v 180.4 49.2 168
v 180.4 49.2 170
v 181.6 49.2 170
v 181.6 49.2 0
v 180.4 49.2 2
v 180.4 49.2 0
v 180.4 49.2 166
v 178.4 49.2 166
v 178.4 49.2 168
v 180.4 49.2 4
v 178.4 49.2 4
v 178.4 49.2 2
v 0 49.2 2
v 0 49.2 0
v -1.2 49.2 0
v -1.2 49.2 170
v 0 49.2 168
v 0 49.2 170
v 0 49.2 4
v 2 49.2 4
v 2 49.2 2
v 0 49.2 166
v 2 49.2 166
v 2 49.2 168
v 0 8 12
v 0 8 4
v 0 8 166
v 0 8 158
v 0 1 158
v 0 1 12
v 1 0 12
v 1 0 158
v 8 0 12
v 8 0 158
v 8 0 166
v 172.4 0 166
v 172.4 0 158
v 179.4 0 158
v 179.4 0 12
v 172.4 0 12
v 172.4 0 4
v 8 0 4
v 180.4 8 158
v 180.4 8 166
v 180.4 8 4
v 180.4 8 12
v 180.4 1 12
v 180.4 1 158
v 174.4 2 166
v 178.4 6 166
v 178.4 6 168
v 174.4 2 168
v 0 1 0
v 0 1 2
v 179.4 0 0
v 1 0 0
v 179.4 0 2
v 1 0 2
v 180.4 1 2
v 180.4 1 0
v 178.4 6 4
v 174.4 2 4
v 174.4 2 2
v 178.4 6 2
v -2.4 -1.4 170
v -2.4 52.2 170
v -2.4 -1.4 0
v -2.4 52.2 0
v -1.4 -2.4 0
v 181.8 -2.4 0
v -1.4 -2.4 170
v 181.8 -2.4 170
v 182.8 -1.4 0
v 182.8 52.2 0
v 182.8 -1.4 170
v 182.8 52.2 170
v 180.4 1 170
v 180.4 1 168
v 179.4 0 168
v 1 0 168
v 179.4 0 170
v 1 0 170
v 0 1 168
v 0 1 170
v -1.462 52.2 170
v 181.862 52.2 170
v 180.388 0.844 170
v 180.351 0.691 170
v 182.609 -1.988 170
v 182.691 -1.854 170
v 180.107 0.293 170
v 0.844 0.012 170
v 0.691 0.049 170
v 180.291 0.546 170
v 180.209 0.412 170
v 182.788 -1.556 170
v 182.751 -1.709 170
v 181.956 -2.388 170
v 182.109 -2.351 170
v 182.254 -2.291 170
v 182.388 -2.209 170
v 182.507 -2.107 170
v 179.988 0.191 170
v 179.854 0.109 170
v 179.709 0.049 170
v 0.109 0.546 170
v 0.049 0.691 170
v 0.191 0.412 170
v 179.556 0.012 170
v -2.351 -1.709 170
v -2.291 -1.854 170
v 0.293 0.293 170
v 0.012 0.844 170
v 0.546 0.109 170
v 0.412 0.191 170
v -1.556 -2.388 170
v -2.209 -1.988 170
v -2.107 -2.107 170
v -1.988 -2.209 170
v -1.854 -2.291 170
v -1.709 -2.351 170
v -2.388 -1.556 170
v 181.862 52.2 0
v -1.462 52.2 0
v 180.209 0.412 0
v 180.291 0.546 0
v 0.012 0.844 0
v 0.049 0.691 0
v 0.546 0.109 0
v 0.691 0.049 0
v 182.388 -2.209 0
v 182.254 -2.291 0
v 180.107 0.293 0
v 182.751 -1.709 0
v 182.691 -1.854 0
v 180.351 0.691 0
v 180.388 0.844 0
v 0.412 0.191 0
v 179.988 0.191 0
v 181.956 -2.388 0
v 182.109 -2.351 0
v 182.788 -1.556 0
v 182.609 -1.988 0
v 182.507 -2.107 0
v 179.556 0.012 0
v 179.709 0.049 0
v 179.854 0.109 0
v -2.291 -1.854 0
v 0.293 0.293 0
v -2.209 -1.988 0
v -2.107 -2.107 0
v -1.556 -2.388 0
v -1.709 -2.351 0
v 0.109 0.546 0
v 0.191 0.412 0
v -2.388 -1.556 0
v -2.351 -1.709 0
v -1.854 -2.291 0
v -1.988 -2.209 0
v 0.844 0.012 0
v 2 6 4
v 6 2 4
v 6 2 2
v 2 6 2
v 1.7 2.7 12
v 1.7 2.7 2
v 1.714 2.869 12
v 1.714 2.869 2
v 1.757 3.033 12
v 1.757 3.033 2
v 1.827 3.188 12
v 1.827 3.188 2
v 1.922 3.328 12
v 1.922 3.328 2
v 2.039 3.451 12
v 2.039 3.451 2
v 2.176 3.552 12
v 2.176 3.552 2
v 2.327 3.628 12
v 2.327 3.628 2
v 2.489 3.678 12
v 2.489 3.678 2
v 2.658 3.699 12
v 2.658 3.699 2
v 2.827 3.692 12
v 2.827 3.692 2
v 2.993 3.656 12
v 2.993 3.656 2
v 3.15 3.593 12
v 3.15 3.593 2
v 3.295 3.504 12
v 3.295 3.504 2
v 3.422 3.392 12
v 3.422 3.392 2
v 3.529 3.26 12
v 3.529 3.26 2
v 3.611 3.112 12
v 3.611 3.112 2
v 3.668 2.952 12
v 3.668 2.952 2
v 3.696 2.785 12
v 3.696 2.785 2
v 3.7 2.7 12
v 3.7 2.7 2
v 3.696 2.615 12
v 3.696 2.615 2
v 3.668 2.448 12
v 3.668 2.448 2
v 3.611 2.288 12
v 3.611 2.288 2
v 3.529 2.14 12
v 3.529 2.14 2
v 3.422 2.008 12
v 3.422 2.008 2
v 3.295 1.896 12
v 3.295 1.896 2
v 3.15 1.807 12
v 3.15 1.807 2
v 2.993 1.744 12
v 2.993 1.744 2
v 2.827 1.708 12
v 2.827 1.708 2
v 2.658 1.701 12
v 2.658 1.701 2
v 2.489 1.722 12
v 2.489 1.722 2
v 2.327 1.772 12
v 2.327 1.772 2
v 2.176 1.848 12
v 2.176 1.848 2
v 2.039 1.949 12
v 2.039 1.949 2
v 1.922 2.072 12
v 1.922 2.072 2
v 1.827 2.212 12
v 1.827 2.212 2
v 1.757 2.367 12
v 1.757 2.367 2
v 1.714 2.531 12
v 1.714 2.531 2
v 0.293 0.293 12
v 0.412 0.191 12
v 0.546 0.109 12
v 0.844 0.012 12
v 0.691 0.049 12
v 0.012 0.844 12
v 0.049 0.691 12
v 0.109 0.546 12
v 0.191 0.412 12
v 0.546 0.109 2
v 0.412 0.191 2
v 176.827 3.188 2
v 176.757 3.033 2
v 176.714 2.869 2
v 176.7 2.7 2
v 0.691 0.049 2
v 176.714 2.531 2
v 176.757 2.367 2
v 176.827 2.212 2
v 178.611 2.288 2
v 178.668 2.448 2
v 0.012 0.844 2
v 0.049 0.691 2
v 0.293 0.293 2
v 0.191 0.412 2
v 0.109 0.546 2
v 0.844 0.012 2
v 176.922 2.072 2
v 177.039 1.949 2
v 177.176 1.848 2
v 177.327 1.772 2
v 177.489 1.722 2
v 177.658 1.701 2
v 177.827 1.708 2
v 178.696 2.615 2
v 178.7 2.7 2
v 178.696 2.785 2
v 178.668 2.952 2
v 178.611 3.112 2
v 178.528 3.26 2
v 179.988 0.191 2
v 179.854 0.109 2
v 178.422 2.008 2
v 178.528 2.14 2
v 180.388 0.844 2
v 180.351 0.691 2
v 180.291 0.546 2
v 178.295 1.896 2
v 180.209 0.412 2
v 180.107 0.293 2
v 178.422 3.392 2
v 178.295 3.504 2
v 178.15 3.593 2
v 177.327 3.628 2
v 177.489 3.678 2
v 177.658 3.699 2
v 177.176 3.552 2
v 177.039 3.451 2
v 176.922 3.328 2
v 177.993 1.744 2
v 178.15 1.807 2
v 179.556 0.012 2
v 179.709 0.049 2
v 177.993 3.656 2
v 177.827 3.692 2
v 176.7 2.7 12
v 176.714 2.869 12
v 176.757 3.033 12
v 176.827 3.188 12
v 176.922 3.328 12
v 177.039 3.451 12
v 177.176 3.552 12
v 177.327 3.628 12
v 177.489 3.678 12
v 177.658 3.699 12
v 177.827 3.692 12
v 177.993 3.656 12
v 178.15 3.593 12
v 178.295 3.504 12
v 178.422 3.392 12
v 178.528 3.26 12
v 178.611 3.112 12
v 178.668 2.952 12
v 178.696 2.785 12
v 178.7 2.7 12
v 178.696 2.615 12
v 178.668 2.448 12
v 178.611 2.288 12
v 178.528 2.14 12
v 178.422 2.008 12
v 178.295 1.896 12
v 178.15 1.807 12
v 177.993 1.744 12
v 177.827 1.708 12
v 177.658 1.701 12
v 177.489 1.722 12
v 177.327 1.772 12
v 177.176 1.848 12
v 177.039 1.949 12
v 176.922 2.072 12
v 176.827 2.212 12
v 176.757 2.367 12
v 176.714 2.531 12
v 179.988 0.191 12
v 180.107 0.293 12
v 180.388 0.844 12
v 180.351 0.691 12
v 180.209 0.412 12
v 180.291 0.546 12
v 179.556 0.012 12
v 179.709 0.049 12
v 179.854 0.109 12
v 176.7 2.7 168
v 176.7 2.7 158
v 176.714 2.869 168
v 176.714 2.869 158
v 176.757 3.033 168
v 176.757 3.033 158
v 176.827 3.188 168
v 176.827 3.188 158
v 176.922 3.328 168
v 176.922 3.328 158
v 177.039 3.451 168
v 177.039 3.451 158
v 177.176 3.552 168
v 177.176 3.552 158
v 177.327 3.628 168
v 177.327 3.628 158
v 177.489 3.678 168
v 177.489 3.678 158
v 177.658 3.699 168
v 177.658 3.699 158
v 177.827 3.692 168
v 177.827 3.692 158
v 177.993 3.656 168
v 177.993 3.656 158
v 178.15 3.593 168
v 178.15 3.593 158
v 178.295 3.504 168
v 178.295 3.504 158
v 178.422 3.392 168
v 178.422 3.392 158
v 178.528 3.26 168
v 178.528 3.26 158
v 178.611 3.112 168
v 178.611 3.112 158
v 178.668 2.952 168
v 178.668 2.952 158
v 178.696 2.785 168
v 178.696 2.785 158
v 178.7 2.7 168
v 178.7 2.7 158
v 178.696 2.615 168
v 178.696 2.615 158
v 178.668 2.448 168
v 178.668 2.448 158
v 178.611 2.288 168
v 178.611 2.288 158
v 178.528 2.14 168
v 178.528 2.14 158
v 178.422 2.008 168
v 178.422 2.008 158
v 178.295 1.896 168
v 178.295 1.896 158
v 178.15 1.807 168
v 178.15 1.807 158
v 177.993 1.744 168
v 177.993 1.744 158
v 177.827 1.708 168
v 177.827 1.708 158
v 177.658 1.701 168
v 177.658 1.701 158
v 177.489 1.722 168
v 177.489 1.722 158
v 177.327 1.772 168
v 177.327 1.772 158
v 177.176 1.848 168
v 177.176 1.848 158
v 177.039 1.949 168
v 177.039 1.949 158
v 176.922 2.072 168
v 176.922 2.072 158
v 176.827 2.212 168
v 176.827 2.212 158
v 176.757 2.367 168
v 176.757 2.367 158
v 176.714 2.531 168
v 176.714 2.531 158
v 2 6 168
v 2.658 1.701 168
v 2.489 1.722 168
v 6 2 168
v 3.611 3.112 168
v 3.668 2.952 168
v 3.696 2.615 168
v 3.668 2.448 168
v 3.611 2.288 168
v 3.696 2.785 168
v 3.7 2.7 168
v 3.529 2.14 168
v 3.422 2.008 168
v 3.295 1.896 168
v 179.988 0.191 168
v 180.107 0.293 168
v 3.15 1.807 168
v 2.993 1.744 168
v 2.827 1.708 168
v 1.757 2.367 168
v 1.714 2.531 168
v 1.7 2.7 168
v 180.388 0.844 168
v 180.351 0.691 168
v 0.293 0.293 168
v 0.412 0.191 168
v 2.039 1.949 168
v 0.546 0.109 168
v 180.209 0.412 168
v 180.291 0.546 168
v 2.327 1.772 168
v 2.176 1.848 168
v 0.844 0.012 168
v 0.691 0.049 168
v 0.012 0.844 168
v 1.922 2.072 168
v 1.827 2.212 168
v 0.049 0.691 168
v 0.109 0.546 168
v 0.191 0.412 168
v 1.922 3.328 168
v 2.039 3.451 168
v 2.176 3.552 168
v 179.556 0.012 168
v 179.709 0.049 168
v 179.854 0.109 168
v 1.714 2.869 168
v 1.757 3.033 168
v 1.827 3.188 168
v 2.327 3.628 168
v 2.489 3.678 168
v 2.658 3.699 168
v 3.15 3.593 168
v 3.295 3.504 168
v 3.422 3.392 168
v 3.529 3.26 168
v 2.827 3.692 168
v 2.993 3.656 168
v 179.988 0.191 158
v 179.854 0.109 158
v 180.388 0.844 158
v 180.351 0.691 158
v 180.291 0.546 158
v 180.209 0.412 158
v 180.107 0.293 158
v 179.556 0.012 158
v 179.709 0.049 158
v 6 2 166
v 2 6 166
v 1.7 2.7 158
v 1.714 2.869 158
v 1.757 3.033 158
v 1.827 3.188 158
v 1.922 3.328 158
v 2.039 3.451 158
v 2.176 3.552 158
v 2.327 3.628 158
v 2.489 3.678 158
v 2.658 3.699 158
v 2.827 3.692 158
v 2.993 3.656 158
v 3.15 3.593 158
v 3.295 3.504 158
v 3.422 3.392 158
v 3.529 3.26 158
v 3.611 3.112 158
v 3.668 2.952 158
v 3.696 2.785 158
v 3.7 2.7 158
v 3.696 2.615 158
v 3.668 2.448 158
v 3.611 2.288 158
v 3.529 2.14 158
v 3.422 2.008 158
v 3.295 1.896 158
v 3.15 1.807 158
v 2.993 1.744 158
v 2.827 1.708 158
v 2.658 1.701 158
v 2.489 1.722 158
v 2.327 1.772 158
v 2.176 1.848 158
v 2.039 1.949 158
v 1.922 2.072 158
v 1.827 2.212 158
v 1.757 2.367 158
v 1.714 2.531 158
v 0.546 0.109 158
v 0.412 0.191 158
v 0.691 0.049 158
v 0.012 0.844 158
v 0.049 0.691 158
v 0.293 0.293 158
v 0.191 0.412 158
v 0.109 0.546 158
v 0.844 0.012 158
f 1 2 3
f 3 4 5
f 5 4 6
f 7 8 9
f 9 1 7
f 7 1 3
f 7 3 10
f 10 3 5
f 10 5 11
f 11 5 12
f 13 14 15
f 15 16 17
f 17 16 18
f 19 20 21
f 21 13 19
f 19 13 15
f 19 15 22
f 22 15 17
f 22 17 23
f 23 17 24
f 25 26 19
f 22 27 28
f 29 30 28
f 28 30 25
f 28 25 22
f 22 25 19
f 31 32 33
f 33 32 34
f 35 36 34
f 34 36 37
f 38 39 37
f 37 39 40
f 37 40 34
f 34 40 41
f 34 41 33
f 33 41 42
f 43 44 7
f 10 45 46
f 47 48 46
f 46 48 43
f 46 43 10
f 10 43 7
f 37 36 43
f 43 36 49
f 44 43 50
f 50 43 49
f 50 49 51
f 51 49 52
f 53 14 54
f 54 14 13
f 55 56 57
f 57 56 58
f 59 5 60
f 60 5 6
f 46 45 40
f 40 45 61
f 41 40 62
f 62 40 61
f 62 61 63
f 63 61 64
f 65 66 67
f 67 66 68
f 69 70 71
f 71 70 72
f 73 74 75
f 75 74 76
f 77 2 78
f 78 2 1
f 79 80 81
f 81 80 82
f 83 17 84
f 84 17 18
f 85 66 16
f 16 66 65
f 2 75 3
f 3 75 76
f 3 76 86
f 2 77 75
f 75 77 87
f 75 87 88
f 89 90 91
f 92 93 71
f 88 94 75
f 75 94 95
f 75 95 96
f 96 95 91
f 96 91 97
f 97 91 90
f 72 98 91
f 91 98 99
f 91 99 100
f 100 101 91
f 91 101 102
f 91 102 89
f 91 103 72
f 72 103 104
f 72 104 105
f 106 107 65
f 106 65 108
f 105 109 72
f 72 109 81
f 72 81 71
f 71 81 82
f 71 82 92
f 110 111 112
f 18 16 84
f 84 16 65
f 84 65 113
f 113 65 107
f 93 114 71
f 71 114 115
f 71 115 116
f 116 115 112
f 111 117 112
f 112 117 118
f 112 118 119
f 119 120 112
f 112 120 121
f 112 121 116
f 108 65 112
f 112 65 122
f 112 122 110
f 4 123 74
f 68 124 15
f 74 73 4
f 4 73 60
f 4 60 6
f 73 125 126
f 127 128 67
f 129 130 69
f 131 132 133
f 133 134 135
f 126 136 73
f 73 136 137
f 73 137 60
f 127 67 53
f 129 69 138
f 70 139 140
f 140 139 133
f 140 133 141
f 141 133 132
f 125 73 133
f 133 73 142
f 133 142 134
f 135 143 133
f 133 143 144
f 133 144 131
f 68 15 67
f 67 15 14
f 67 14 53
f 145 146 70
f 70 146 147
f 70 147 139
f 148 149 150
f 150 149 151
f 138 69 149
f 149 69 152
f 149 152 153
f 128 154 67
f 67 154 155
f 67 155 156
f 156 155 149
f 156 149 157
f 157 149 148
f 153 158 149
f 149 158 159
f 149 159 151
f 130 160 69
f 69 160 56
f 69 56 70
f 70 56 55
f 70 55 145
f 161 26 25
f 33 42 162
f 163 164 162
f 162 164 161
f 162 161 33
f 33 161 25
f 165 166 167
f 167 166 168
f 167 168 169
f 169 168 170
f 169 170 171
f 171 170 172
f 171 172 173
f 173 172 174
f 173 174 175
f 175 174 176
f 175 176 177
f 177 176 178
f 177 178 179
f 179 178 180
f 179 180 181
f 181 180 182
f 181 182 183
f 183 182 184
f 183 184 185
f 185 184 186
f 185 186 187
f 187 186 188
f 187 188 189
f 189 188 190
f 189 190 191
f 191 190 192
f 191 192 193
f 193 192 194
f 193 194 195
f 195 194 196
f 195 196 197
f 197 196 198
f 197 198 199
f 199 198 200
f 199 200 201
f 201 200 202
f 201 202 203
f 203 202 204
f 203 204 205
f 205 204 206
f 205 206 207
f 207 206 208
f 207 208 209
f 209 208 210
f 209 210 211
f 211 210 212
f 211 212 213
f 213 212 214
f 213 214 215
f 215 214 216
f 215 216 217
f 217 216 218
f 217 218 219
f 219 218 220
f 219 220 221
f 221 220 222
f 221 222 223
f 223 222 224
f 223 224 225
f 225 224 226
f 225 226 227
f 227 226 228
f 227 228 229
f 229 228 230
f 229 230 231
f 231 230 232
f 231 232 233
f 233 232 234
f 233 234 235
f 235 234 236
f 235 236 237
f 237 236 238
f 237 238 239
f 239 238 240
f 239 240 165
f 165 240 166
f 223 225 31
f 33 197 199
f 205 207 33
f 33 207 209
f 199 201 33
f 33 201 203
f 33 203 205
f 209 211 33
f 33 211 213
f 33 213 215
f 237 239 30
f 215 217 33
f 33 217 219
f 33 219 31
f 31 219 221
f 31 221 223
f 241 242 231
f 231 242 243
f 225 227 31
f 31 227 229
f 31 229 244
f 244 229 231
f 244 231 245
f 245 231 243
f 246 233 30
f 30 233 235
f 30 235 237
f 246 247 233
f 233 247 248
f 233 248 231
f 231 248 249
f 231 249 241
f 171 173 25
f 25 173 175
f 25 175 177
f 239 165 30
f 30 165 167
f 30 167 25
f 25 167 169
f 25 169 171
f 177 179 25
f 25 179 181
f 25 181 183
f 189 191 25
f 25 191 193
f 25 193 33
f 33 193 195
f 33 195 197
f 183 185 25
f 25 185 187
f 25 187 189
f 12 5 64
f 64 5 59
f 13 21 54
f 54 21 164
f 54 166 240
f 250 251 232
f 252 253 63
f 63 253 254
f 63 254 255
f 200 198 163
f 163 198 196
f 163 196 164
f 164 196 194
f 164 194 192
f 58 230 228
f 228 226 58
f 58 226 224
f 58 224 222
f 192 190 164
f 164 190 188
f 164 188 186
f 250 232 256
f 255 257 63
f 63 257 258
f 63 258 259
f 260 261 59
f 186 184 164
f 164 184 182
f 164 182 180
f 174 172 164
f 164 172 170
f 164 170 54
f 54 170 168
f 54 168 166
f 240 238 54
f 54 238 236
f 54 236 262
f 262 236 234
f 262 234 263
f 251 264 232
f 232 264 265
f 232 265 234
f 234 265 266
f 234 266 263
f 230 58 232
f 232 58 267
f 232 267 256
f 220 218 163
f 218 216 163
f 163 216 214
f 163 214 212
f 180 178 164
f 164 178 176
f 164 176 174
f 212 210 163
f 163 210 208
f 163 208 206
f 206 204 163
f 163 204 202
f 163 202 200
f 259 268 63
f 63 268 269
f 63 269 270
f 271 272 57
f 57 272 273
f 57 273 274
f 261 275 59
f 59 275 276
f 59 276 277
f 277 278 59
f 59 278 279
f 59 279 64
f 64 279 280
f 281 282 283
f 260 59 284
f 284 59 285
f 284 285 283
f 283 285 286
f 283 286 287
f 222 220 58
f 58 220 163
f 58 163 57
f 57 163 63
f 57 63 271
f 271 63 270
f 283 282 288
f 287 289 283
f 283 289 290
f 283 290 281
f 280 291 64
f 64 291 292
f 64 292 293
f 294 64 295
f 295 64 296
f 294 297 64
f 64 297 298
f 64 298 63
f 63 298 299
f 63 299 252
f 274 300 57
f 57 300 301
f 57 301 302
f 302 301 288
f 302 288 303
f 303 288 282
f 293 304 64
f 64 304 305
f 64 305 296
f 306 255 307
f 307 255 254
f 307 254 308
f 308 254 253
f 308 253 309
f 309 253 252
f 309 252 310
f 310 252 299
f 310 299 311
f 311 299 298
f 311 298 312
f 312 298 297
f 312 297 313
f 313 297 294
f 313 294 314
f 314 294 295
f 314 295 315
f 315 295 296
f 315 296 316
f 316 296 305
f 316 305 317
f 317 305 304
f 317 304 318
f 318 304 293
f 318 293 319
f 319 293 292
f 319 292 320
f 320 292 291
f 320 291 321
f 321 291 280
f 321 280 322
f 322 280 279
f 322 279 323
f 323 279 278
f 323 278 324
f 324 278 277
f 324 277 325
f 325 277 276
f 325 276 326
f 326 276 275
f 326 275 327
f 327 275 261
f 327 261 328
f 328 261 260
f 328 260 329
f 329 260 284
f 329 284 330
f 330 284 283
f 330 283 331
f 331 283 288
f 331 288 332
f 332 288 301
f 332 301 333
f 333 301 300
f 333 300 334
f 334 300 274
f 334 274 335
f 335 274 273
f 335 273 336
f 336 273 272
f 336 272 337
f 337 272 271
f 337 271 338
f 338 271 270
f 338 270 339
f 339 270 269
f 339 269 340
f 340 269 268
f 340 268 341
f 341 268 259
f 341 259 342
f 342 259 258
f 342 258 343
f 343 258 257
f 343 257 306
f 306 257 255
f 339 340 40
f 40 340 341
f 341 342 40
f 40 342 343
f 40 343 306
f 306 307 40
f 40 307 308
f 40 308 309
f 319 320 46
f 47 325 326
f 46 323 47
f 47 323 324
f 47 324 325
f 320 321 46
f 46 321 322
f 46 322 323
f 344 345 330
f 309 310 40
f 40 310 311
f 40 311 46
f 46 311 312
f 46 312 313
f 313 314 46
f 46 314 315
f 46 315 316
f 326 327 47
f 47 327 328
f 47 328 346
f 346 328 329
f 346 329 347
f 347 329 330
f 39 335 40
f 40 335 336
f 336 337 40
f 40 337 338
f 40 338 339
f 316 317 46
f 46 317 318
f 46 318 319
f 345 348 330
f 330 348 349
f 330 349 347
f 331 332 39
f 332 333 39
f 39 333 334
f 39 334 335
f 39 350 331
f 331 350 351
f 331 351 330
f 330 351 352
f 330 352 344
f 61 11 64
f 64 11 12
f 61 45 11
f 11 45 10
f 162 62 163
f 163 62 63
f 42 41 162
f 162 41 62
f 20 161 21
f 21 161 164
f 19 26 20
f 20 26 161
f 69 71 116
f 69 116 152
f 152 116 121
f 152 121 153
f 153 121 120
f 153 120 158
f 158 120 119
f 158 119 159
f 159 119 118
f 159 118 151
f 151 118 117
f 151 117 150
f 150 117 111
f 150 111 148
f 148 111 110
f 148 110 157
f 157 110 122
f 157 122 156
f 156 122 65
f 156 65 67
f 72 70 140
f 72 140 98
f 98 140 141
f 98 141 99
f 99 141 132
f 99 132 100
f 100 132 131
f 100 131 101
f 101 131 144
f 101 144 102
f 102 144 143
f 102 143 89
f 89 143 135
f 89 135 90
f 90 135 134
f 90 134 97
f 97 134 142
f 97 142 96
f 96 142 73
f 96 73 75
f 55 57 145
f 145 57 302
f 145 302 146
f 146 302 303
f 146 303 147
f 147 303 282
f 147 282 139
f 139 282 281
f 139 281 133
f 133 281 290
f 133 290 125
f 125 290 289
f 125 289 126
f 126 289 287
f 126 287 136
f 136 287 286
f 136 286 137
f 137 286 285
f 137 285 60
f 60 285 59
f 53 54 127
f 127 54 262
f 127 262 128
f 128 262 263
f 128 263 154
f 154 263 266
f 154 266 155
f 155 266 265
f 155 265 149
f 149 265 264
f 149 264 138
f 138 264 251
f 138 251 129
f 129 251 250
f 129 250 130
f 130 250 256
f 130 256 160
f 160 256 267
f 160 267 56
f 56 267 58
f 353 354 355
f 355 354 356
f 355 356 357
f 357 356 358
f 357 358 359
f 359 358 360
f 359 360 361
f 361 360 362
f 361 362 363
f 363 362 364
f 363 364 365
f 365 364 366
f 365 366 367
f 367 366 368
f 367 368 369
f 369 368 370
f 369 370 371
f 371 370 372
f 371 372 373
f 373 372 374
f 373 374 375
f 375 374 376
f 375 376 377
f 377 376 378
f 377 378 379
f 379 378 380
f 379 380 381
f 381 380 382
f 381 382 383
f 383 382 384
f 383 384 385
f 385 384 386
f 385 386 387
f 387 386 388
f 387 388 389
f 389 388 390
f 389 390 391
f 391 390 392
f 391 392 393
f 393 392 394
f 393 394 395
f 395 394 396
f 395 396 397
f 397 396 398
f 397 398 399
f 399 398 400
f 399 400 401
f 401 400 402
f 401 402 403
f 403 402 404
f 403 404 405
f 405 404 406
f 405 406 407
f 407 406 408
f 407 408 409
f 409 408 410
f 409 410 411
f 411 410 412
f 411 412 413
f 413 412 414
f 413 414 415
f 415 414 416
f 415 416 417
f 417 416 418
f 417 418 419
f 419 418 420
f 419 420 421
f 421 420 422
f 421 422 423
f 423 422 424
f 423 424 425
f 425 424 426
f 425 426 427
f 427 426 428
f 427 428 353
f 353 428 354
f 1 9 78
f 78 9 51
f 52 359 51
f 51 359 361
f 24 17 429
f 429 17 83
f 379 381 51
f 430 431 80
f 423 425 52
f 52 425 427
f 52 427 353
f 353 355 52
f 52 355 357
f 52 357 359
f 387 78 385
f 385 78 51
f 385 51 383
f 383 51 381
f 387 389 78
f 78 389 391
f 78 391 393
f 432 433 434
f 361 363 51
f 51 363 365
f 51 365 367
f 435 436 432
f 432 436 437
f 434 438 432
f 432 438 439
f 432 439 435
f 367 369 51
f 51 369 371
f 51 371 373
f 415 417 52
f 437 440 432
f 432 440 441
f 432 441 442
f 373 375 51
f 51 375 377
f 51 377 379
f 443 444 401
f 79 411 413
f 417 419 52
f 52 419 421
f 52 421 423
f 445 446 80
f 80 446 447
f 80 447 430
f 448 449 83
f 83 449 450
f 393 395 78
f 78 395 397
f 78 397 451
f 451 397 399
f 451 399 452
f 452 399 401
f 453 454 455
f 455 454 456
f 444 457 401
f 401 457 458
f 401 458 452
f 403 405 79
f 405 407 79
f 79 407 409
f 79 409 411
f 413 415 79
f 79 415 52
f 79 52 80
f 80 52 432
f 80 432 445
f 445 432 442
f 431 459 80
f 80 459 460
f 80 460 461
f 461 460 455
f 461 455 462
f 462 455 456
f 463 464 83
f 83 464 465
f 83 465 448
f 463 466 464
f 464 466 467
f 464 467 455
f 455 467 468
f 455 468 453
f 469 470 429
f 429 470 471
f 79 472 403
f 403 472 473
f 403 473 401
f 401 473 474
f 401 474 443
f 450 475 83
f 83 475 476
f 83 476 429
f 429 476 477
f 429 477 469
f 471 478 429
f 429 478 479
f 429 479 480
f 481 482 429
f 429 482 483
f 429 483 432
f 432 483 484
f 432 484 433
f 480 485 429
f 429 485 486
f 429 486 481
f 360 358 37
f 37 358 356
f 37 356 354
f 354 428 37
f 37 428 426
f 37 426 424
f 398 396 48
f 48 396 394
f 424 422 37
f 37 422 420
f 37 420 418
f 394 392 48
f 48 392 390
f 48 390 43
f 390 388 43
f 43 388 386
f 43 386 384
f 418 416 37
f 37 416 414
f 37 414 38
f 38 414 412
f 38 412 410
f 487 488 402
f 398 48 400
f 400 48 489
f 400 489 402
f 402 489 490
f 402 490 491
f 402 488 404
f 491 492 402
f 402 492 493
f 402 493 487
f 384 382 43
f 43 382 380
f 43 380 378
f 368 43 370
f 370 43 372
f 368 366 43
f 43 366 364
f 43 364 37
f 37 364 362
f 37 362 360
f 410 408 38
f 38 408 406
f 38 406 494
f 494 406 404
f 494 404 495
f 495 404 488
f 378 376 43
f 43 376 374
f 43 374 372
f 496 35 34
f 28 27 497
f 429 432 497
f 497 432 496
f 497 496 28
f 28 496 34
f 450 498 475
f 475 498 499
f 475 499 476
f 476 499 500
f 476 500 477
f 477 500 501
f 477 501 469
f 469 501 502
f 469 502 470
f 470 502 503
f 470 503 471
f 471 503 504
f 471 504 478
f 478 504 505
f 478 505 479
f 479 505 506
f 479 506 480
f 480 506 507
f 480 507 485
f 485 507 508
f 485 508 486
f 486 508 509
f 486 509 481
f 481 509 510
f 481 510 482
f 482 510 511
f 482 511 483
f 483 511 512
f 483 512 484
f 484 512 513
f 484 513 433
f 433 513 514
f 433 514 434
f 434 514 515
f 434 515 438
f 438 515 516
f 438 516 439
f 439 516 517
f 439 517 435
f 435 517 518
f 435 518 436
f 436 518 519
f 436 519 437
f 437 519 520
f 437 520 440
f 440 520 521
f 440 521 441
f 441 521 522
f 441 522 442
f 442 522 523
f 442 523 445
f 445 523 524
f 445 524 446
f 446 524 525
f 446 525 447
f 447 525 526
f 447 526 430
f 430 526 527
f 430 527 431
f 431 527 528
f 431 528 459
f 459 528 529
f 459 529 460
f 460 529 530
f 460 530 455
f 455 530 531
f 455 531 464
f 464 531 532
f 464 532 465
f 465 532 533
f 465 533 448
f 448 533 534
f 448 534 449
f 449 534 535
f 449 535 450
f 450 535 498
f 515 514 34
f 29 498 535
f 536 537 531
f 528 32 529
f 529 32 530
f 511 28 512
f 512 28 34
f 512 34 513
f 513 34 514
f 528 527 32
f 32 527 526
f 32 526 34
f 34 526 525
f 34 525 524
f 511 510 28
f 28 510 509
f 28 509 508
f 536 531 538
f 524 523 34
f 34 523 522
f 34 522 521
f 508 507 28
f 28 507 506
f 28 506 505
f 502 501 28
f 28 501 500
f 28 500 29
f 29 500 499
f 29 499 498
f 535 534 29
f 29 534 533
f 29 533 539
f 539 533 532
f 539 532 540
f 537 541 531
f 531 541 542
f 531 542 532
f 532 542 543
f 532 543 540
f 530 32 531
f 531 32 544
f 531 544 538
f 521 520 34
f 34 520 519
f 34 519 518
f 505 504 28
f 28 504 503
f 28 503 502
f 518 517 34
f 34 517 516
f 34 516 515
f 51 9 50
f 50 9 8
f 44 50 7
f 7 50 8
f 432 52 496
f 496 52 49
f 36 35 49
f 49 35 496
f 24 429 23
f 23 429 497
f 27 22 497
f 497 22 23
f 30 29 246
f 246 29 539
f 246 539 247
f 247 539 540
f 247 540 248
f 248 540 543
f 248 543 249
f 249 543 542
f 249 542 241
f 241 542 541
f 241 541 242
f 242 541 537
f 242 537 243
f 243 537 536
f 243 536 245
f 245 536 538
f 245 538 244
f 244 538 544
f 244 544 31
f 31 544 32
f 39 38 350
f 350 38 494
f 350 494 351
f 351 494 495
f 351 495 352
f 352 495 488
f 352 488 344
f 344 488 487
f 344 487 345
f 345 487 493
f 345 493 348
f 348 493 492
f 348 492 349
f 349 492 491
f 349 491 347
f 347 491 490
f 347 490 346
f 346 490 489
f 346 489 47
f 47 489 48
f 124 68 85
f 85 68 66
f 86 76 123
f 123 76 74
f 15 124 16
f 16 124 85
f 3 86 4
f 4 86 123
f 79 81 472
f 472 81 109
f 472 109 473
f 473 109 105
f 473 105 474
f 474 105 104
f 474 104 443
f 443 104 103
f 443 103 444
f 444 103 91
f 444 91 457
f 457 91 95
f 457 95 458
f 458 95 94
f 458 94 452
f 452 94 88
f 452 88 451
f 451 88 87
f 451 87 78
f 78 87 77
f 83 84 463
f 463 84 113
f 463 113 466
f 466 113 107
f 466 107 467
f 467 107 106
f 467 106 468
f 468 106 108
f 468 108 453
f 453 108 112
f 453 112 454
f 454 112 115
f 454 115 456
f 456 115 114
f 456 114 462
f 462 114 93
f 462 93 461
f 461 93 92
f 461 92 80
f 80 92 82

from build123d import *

# Parameters (mm, degrees)
EXTRUDE_1_DEPTH = 170
EXTRUDE_START   = 2
SKETCH_1_3_R    = 1
EXTRUDE_2_DEPTH = 10
EXTRUDE_3_DEPTH = 2
FILLET_1_R      = 1
EXTRUDE_START_2 = 158
SKETCH_1_5_R    = 1
EXTRUDE_4_DEPTH = 10
EXTRUDE_START_3 = 166
EXTRUDE_5_DEPTH = 2
FILLET_2_R      = 1
SKETCH_2_W      = 1.2
SKETCH_2_H      = 170
EXTRUDE_6_DEPTH = 3
CHAMFER_1_SIZE2 = 3
CHAMFER_1_SIZE  = 0.262465991
CHAMFER_2_SIZE2 = 0.262465991
CHAMFER_2_SIZE  = 3
FILLET_3_R      = 1


with BuildPart() as part:
    # Эскиз1 → Бобышка-Вытянуть1 (new body)
    with BuildSketch(Plane.XY):
        Polygon((0, 49.2), (-2.4, 49.2), (-2.4, -2.4), (182.8, -2.4), (182.8, 49.2), (180.4, 49.2), (180.4, 0), (0, 0), align=None)
    extrude(amount=EXTRUDE_1_DEPTH)

    # Эскиз1<3> → Бобышка-Вытянуть2 (add)
    # profile 1 of 2: a face of its own
    with BuildSketch(Plane.XY.offset(EXTRUDE_START)):
        Polygon((2, 6), (0, 8), (0, 0), (8, 0), (6, 2), align=None)
        with Locations((2.7, 2.7)):
            Circle(SKETCH_1_3_R, mode=Mode.SUBTRACT)
    # profile 2 of 2: a face of its own
    with BuildSketch(Plane.XY.offset(EXTRUDE_START)):
        Polygon((174.4, 2), (172.4, 0), (180.4, 0), (180.4, 8), (178.4, 6), align=None)
        with Locations((177.7, 2.7)):
            Circle(SKETCH_1_3_R, mode=Mode.SUBTRACT)
    extrude(amount=EXTRUDE_2_DEPTH)

    # Эскиз1<4> → Бобышка-Вытянуть3 (add)
    with BuildSketch(Plane.XY.offset(EXTRUDE_START)):
        Polygon((178.4, 49.2), (178.4, 6), (180.4, 8), (180.4, 49.2), align=None)
        Polygon((6, 2), (8, 0), (172.4, 0), (174.4, 2), align=None)
        Polygon((2, 49.2), (0, 49.2), (0, 8), (2, 6), align=None)
    extrude(amount=EXTRUDE_3_DEPTH)

    # Скругление1
    fillet_1_edges = [part.edges().sort_by_distance(p)[0] for p in [
        (182.8, -2.4, 85),
        (-2.4, -2.4, 85),
        (0, 0, 1),
        (180.4, 0, 1),
    ]]
    fillet(fillet_1_edges, radius=FILLET_1_R)

    # Эскиз1<5> → Бобышка-Вытянуть4 (add)
    # profile 1 of 2: a face of its own
    with BuildSketch(Plane.XY.offset(EXTRUDE_START_2)):
        Polygon((174.4, 2), (172.4, 0), (180.4, 0), (180.4, 8), (178.4, 6), align=None)
        with Locations((177.7, 2.7)):
            Circle(SKETCH_1_5_R, mode=Mode.SUBTRACT)
    # profile 2 of 2: a face of its own
    with BuildSketch(Plane.XY.offset(EXTRUDE_START_2)):
        Polygon((2, 6), (0, 8), (0, 0), (8, 0), (6, 2), align=None)
        with Locations((2.7, 2.7)):
            Circle(SKETCH_1_5_R, mode=Mode.SUBTRACT)
    extrude(amount=EXTRUDE_4_DEPTH)

    # Эскиз1<6> → Бобышка-Вытянуть5 (add)
    with BuildSketch(Plane.XY.offset(EXTRUDE_START_3)):
        Polygon((178.4, 49.2), (178.4, 6), (180.4, 8), (180.4, 49.2), align=None)
        Polygon((6, 2), (8, 0), (172.4, 0), (174.4, 2), align=None)
        Polygon((2, 49.2), (0, 49.2), (0, 8), (2, 6), align=None)
    extrude(amount=EXTRUDE_5_DEPTH)

    # Скругление2
    fillet_2_edges = [part.edges().sort_by_distance(p)[0] for p in [
        (180.4, 0, 85),
        (0, 0, 85),
    ]]
    fillet(fillet_2_edges, radius=FILLET_2_R)

    # Эскиз2 → Бобышка-Вытянуть6 (add)
    with BuildSketch(Plane(origin=(0, 49.2, 0), x_dir=(1, 0, 0), z_dir=(0, 1, 0))):
        with Locations((-1.8, -85)):
            Rectangle(SKETCH_2_W, SKETCH_2_H)
        with Locations((182.2, -85)):
            Rectangle(SKETCH_2_W, SKETCH_2_H)
    extrude(amount=EXTRUDE_6_DEPTH)

    # Фаска1
    chamfer_1_edges = [part.edges().sort_by_distance(p)[0] for p in [
        (-1.2, 52.2, 85),
    ]]
    chamfer_1_side = [part.faces().sort_by_distance(p)[0] for p in [
        (-1.20524932, 52.2, 85),
    ]]
    chamfer(chamfer_1_edges, length=CHAMFER_1_SIZE - 0.0001, length2=CHAMFER_1_SIZE2 - 0.0001, reference=chamfer_1_side[0])  # a hair under: the kernel refuses the full size

    # Фаска2
    chamfer_2_edges = [part.edges().sort_by_distance(p)[0] for p in [
        (181.6, 52.2, 85),
    ]]
    chamfer_2_side = [part.faces().sort_by_distance(p)[0] for p in [
        (181.6, 52.19475068, 85),
    ]]
    chamfer(chamfer_2_edges, length=CHAMFER_2_SIZE - 0.0001, length2=CHAMFER_2_SIZE2 - 0.0001, reference=chamfer_2_side[0])  # a hair under: the kernel refuses the full size

    # Скругление3
    fillet_3_edges = [part.edges().sort_by_distance(p)[0] for p in [
        (0, 0, 169),
        (180.4, 0, 169),
    ]]
    fillet(fillet_3_edges, radius=FILLET_3_R)


solid = part.part
